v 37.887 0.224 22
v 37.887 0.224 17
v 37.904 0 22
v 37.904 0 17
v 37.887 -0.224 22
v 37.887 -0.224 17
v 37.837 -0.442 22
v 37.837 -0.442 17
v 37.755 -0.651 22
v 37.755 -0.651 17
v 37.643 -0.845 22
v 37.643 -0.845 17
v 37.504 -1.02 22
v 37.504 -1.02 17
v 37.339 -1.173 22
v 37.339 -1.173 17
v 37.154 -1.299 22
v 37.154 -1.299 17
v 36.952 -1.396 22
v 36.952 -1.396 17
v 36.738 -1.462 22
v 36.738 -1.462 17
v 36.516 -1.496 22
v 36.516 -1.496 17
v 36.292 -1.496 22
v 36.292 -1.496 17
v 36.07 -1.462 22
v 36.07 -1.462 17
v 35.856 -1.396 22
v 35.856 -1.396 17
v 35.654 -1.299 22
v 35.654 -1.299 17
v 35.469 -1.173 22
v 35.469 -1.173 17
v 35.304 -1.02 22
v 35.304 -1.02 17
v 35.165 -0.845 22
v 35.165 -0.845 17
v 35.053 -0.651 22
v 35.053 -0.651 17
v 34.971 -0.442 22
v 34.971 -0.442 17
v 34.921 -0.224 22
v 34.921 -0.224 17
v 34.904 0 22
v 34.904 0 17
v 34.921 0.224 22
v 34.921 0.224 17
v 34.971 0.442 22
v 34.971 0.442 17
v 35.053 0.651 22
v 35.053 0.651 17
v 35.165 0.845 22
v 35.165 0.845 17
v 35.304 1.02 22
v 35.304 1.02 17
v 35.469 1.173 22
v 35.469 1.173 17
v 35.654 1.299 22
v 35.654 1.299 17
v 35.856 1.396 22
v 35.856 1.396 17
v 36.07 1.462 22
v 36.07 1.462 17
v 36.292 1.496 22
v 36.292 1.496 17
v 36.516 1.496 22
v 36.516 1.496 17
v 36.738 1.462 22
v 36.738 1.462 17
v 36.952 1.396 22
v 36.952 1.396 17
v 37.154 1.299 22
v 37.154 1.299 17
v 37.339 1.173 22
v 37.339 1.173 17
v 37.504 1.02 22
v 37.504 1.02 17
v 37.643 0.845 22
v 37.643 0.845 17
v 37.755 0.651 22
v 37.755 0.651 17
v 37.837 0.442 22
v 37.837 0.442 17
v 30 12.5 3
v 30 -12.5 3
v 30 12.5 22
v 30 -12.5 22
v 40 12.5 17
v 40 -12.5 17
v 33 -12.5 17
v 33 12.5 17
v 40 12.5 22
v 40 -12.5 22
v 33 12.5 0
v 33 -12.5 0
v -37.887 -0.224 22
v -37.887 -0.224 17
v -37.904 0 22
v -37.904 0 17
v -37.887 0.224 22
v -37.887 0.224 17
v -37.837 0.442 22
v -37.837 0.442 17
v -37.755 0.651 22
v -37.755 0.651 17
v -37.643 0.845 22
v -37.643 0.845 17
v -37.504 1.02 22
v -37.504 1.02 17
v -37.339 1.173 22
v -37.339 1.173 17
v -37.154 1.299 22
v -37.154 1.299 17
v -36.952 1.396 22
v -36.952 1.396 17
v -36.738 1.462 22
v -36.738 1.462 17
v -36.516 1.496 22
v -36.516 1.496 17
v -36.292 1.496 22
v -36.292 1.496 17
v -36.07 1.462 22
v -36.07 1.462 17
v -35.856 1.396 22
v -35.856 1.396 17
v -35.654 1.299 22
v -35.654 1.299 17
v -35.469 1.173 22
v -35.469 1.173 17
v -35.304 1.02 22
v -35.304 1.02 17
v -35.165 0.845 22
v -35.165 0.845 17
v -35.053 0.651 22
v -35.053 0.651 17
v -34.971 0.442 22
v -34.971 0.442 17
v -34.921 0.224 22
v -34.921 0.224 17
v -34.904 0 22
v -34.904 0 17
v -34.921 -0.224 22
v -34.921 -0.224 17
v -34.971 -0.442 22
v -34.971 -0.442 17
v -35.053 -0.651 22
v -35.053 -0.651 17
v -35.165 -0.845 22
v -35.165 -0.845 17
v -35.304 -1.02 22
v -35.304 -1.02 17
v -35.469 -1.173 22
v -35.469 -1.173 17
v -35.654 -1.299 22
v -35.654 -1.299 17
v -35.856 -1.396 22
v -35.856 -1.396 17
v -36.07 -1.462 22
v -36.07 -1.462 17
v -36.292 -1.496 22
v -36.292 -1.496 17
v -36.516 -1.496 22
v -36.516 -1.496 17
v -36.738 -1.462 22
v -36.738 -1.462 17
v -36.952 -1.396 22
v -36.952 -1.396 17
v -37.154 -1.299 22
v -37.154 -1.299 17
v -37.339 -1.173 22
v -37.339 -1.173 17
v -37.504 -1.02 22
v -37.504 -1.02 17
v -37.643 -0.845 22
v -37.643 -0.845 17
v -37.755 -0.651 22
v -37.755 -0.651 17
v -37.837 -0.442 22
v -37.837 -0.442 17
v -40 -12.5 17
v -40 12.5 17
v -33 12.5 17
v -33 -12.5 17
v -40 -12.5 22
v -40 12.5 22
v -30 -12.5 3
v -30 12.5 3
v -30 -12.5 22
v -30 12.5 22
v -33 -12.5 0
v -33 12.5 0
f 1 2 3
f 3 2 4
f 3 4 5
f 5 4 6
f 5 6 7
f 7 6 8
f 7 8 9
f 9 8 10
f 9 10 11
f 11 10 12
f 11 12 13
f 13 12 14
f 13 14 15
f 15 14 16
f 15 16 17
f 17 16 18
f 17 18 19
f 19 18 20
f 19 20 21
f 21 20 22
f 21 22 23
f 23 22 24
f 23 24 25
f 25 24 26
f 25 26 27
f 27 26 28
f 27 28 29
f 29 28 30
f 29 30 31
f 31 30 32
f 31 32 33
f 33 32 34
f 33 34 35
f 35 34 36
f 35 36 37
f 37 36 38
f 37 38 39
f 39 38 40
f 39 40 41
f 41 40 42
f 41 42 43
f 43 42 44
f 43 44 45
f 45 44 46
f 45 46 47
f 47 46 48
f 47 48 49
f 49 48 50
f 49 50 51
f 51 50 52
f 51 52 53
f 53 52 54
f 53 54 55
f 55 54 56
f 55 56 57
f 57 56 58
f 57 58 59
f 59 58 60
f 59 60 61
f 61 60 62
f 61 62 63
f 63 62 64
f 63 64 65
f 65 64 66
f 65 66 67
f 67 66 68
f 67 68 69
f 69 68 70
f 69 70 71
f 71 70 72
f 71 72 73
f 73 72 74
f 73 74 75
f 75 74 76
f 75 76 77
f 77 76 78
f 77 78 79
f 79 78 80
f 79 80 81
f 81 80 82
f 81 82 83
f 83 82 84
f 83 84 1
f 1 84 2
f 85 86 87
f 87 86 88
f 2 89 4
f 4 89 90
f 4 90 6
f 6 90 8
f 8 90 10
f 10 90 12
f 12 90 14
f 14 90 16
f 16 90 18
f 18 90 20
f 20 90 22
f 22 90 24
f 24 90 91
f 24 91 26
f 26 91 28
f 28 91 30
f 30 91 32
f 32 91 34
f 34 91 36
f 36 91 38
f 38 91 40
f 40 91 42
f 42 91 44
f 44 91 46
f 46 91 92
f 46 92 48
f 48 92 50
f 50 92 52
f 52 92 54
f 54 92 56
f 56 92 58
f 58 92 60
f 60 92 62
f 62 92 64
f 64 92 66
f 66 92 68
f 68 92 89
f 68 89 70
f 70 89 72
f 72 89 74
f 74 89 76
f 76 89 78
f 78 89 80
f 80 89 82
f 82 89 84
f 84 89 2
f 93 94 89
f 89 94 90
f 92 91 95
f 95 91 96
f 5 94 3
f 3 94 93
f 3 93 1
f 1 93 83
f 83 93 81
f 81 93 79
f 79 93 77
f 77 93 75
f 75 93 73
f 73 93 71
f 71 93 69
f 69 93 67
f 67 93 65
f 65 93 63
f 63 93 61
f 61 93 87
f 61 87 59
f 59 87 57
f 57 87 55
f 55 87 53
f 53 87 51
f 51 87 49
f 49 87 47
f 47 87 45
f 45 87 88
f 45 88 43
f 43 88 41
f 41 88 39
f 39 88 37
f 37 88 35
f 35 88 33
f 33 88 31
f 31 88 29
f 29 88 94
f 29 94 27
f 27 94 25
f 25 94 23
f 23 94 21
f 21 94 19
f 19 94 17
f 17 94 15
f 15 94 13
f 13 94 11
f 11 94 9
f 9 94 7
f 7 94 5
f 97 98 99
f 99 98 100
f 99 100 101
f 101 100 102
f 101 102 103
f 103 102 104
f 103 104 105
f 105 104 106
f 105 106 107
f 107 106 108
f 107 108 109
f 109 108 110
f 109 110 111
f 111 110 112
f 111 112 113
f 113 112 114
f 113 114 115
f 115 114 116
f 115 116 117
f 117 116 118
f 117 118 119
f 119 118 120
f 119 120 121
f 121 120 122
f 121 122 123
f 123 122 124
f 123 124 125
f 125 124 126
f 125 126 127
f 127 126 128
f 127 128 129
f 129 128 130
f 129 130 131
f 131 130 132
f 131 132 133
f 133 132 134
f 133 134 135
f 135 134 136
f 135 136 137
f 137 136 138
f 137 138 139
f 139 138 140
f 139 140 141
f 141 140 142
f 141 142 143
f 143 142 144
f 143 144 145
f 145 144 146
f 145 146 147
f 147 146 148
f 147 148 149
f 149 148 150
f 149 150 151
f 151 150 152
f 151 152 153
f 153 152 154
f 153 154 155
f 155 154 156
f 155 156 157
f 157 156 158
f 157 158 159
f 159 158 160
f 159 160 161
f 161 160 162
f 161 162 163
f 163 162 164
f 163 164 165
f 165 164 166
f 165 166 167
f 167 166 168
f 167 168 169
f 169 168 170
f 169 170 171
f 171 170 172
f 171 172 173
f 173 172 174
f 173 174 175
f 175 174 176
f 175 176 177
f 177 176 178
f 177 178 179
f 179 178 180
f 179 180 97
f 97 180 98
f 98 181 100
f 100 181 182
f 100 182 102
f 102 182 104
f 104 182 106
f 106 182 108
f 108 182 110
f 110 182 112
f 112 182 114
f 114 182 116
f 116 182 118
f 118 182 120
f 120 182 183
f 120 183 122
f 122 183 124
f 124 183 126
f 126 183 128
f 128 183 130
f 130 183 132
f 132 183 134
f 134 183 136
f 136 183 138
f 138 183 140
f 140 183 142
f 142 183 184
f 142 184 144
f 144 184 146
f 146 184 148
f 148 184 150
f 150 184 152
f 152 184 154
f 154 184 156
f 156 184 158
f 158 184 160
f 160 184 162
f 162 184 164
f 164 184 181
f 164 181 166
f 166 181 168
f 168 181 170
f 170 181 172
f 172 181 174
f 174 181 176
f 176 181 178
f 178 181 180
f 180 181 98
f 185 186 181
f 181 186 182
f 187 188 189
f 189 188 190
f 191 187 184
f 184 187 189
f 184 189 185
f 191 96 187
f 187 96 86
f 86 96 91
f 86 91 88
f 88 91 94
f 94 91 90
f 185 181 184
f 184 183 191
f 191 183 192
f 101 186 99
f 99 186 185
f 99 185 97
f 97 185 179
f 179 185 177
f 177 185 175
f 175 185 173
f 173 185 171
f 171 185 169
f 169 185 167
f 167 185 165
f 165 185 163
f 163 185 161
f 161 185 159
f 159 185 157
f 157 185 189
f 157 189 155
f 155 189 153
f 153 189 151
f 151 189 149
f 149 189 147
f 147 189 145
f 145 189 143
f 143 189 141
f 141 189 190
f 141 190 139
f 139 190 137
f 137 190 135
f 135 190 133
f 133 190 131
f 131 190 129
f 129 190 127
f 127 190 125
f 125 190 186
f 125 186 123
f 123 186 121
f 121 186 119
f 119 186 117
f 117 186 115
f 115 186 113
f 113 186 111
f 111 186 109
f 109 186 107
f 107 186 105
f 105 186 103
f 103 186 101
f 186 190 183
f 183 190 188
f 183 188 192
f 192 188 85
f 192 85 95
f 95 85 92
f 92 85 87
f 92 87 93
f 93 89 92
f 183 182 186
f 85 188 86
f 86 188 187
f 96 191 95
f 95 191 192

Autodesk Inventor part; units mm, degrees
ref_plane "YZ Plane" through (0, 0, 0) normal (1, 0, 0) x (0, 1, 0)
ref_plane "XZ Plane" through (0, 0, 0) normal (0, 1, 0) x (-1, 0, 0)
ref_plane "XY Plane" through (0, 0, 0) normal (0, 0, 1) x (1, 0, 0)
sketch "Эскиз1" plane through (0, 0, 0) normal (0, 0, 1) x (1, 0, 0)
  line L0 (-30, -12.5) -> (30, -12.5)
  line L1 (30, -12.5) -> (30, 12.5)
  line L2 (30, 12.5) -> (-30, 12.5)
  line L3 (-30, 12.5) -> (-30, -12.5)
  line L4 (-30, -12.5) -> (30, 12.5) construction
  line L5 (30, -12.5) -> (-30, 12.5) construction
  point P0 (0, 0)
  dimension "d0" = 60
  dimension "d14" = 25
extrude "Выдавливание1" add sketch "Эскиз1" along normal blind 3
sketch "Эскиз2" plane through (0, 0, 3) normal (0, 0, 1) x (1, 0, 0)
  line L0 (-30, 12.5) -> (-30, -12.5) projected
  line L1 (-30, 12.5) -> (-33, 12.5)
  line L2 (-33, 12.5) -> (-33, -12.5)
  line L3 (-33, -12.5) -> (-30, -12.5)
  line L4 (-30, -12.5) -> (-30, 12.5)
  point P0 (0, 0)
  dimension "d3" = 3
extrude "Выдавливание2" add sketch "Эскиз2" along normal blind 19 and the other way blind 3
sketch "Эскиз3" plane through (0, 0, 22) normal (0, 0, 1) x (1, 0, 0)
  line L0 (-30, -12.5) -> (-30, 12.5) projected
  line L1 (-30, 12.5) -> (-40, 12.5)
  line L2 (-40, 12.5) -> (-40, -12.5)
  line L3 (-40, -12.5) -> (-30, -12.5)
  line L4 (-30, -12.5) -> (-30, 12.5)
  point P0 (0, 0)
  dimension "d8" = 10
extrude "Выдавливание3" add sketch "Эскиз3" against normal blind 5
sketch "Эскиз4" plane through (0, 0, 17) normal (0, 0, -1) x (-1, 0, 0)
  circle A0 centre (36.404, 0) radius 1.5
  line L0 (40, -12.5) -> (40, 12.5) projected
  point P0 (0, 0)
  point P1 (40, 0)
  dimension "d11" = 3
extrude "Выдавливание4" cut sketch "Эскиз4" against normal blind 5
mirror "Зеркальное отражение1" about plane through (0, 0, 0) normal (1, 0, 0) of "Выдавливание2", "Выдавливание3", "Выдавливание4"
properties part number "000.001.013 - Скобе прижима турбины"
